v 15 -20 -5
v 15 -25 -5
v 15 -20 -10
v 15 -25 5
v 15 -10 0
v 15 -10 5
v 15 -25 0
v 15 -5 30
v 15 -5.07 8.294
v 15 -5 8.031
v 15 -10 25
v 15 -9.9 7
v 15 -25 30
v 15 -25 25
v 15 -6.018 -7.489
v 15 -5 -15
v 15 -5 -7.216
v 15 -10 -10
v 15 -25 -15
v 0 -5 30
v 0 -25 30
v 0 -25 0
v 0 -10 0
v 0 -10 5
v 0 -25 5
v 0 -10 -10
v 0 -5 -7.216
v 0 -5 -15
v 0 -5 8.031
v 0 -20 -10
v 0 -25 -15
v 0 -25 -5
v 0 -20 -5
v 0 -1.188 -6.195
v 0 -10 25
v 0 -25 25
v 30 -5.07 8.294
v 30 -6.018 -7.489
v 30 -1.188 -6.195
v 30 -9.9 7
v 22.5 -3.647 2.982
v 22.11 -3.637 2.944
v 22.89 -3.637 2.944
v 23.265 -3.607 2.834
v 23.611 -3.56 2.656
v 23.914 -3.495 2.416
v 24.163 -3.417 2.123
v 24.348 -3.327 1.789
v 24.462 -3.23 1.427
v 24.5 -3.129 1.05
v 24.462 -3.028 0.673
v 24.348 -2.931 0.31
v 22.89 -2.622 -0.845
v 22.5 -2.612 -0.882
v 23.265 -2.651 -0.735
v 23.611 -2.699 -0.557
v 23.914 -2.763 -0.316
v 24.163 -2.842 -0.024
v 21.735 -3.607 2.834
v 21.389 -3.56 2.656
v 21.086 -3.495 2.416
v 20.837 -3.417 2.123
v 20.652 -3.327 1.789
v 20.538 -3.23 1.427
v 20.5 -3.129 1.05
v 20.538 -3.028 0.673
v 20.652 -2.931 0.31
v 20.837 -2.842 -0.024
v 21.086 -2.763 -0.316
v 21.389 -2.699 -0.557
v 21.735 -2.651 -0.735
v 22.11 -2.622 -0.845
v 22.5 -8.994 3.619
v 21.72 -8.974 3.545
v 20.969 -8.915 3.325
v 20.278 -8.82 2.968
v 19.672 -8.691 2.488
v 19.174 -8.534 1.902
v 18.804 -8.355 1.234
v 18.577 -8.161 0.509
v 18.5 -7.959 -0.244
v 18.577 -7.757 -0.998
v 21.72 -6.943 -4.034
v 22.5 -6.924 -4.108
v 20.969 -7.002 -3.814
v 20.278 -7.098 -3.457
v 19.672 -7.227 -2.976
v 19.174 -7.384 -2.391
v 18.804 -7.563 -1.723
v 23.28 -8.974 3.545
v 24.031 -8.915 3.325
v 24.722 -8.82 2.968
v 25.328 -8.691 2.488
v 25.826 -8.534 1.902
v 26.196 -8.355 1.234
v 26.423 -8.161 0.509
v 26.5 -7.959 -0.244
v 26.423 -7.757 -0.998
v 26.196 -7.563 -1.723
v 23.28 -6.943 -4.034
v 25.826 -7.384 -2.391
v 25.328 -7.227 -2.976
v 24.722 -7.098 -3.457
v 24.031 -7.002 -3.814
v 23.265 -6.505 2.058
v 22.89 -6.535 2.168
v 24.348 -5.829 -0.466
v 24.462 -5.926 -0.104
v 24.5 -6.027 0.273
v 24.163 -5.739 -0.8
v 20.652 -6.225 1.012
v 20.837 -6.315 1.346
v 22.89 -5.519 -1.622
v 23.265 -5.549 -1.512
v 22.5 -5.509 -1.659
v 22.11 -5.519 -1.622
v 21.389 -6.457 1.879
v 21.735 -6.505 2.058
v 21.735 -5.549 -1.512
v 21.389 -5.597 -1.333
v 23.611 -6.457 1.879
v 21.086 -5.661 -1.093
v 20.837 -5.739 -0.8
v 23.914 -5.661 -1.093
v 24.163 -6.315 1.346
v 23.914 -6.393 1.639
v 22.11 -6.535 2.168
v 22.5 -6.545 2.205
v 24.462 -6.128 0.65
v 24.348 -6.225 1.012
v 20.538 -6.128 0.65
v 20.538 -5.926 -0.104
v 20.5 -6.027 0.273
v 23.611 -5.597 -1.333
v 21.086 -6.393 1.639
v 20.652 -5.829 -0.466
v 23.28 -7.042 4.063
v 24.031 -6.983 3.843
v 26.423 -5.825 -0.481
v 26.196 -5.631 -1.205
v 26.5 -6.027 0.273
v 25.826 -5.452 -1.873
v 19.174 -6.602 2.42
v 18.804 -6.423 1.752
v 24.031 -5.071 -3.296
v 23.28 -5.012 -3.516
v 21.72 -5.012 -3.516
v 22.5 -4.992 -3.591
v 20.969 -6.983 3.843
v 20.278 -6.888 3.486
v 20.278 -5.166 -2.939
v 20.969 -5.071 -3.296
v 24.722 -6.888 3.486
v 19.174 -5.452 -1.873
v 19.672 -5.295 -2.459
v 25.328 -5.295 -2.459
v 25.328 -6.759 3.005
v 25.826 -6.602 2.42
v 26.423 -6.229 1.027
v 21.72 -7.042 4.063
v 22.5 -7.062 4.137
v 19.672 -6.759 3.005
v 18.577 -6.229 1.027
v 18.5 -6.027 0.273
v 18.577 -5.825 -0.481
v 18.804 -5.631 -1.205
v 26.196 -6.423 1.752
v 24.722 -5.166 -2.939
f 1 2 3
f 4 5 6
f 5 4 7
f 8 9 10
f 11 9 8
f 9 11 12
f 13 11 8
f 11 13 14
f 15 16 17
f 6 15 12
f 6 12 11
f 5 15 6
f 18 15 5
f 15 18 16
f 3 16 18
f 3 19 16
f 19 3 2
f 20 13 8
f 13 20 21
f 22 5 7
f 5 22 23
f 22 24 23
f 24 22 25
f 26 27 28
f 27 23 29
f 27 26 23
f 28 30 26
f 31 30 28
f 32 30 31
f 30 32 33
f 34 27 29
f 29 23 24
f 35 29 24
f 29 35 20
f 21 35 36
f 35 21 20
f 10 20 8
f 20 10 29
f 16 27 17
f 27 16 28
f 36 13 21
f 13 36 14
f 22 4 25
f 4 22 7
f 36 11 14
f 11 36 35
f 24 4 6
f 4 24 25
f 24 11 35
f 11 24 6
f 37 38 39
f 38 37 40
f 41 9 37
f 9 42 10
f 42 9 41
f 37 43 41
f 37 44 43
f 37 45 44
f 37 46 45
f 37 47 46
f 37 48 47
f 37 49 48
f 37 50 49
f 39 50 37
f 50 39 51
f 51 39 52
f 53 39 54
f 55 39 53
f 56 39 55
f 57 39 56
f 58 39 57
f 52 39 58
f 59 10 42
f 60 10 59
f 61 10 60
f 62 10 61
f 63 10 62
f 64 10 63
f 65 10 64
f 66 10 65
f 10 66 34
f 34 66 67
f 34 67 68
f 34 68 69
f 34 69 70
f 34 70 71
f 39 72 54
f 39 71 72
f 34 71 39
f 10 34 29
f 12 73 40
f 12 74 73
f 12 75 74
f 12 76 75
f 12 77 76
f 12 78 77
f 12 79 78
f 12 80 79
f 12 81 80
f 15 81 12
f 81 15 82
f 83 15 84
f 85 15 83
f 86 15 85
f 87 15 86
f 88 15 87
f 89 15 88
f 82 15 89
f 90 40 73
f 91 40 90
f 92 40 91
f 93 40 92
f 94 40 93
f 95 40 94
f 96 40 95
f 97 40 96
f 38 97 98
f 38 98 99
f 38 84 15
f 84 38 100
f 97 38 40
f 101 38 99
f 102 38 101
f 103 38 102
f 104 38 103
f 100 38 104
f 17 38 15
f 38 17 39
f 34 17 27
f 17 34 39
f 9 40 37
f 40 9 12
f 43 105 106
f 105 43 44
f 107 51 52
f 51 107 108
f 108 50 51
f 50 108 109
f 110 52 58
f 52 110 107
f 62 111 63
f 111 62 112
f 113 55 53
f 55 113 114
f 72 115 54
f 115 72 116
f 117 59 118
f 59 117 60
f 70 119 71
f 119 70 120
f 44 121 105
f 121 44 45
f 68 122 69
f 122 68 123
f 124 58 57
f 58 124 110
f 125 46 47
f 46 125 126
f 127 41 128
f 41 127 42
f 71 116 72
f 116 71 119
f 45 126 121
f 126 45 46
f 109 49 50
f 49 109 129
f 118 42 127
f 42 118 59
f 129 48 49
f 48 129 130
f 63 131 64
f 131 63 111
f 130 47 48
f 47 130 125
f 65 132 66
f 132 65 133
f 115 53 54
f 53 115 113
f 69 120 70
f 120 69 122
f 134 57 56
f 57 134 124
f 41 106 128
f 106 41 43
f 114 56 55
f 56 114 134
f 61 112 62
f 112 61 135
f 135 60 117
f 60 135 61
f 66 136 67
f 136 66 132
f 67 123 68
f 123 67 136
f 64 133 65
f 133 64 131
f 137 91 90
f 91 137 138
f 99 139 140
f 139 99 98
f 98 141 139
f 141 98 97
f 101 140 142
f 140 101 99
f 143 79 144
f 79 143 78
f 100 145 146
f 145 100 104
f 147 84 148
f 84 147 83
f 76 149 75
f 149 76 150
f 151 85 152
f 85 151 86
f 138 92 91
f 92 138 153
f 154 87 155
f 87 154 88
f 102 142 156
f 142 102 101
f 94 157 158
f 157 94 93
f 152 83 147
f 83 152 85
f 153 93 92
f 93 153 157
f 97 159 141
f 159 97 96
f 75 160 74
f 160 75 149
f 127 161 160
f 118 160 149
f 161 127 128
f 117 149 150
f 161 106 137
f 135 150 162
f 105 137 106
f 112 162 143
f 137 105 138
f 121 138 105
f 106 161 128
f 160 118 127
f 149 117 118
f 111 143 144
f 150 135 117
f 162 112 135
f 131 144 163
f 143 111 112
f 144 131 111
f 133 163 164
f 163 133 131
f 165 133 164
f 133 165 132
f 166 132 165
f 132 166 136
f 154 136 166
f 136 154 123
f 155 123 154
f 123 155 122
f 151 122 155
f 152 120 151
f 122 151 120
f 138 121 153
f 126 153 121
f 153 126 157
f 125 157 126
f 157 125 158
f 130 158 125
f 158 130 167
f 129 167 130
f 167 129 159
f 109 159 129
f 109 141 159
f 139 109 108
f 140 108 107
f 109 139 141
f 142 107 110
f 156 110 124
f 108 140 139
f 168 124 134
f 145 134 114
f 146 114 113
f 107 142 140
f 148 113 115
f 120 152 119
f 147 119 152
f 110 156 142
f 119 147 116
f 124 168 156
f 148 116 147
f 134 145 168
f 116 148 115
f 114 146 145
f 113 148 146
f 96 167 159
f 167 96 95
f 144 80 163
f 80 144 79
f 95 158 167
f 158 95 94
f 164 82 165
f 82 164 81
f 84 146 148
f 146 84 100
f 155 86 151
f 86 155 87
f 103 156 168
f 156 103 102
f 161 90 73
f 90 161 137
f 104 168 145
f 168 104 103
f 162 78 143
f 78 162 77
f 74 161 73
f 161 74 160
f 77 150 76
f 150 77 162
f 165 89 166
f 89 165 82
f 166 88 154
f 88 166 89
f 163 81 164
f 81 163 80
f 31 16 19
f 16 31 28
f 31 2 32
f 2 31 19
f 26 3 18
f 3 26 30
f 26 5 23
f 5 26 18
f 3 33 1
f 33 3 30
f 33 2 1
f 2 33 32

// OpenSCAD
// lüfter-halterung

// loch-abstand: 10.5cm 
// lüfter-außen-maße: 12cm x 12cm x 2.5
// fensterbrett: 2cm dick

$fn=32;

thickness = 5;
fbrett_h = 20;

gabel_l = 20;
gabel_w = 15;

translate([0,-thickness-gabel_l, 0])
difference(){
    cube([gabel_w, gabel_l, fbrett_h+2*thickness]);
    translate([-thickness, -thickness, thickness])
    cube([40, gabel_l, fbrett_h]);
}

translate([gabel_w,-9.9, thickness+2])
rotate([-75, 0, 0]){
    difference(){
        translate([-gabel_w,0,0])
        cube([gabel_w*2, 15, 5]);
        
        translate([7.5, 7.5, -15])
        cylinder(r=2, h=100);
        
        translate([7.5, 7.5, -13])
        cylinder(r=4, h=15);
    }
}

// kabel-öse
translate([0, -gabel_l-thickness, -15])
difference(){
    cube([gabel_w, gabel_l, 20]);
    
    translate([-2.5, thickness, 5])
    cube([gabel_w+5, gabel_l-2*thickness, 10]);
    
    translate([-2.5, -thickness+1, 10])
    cube([gabel_w+5, gabel_l-2*thickness, 5]);
}
